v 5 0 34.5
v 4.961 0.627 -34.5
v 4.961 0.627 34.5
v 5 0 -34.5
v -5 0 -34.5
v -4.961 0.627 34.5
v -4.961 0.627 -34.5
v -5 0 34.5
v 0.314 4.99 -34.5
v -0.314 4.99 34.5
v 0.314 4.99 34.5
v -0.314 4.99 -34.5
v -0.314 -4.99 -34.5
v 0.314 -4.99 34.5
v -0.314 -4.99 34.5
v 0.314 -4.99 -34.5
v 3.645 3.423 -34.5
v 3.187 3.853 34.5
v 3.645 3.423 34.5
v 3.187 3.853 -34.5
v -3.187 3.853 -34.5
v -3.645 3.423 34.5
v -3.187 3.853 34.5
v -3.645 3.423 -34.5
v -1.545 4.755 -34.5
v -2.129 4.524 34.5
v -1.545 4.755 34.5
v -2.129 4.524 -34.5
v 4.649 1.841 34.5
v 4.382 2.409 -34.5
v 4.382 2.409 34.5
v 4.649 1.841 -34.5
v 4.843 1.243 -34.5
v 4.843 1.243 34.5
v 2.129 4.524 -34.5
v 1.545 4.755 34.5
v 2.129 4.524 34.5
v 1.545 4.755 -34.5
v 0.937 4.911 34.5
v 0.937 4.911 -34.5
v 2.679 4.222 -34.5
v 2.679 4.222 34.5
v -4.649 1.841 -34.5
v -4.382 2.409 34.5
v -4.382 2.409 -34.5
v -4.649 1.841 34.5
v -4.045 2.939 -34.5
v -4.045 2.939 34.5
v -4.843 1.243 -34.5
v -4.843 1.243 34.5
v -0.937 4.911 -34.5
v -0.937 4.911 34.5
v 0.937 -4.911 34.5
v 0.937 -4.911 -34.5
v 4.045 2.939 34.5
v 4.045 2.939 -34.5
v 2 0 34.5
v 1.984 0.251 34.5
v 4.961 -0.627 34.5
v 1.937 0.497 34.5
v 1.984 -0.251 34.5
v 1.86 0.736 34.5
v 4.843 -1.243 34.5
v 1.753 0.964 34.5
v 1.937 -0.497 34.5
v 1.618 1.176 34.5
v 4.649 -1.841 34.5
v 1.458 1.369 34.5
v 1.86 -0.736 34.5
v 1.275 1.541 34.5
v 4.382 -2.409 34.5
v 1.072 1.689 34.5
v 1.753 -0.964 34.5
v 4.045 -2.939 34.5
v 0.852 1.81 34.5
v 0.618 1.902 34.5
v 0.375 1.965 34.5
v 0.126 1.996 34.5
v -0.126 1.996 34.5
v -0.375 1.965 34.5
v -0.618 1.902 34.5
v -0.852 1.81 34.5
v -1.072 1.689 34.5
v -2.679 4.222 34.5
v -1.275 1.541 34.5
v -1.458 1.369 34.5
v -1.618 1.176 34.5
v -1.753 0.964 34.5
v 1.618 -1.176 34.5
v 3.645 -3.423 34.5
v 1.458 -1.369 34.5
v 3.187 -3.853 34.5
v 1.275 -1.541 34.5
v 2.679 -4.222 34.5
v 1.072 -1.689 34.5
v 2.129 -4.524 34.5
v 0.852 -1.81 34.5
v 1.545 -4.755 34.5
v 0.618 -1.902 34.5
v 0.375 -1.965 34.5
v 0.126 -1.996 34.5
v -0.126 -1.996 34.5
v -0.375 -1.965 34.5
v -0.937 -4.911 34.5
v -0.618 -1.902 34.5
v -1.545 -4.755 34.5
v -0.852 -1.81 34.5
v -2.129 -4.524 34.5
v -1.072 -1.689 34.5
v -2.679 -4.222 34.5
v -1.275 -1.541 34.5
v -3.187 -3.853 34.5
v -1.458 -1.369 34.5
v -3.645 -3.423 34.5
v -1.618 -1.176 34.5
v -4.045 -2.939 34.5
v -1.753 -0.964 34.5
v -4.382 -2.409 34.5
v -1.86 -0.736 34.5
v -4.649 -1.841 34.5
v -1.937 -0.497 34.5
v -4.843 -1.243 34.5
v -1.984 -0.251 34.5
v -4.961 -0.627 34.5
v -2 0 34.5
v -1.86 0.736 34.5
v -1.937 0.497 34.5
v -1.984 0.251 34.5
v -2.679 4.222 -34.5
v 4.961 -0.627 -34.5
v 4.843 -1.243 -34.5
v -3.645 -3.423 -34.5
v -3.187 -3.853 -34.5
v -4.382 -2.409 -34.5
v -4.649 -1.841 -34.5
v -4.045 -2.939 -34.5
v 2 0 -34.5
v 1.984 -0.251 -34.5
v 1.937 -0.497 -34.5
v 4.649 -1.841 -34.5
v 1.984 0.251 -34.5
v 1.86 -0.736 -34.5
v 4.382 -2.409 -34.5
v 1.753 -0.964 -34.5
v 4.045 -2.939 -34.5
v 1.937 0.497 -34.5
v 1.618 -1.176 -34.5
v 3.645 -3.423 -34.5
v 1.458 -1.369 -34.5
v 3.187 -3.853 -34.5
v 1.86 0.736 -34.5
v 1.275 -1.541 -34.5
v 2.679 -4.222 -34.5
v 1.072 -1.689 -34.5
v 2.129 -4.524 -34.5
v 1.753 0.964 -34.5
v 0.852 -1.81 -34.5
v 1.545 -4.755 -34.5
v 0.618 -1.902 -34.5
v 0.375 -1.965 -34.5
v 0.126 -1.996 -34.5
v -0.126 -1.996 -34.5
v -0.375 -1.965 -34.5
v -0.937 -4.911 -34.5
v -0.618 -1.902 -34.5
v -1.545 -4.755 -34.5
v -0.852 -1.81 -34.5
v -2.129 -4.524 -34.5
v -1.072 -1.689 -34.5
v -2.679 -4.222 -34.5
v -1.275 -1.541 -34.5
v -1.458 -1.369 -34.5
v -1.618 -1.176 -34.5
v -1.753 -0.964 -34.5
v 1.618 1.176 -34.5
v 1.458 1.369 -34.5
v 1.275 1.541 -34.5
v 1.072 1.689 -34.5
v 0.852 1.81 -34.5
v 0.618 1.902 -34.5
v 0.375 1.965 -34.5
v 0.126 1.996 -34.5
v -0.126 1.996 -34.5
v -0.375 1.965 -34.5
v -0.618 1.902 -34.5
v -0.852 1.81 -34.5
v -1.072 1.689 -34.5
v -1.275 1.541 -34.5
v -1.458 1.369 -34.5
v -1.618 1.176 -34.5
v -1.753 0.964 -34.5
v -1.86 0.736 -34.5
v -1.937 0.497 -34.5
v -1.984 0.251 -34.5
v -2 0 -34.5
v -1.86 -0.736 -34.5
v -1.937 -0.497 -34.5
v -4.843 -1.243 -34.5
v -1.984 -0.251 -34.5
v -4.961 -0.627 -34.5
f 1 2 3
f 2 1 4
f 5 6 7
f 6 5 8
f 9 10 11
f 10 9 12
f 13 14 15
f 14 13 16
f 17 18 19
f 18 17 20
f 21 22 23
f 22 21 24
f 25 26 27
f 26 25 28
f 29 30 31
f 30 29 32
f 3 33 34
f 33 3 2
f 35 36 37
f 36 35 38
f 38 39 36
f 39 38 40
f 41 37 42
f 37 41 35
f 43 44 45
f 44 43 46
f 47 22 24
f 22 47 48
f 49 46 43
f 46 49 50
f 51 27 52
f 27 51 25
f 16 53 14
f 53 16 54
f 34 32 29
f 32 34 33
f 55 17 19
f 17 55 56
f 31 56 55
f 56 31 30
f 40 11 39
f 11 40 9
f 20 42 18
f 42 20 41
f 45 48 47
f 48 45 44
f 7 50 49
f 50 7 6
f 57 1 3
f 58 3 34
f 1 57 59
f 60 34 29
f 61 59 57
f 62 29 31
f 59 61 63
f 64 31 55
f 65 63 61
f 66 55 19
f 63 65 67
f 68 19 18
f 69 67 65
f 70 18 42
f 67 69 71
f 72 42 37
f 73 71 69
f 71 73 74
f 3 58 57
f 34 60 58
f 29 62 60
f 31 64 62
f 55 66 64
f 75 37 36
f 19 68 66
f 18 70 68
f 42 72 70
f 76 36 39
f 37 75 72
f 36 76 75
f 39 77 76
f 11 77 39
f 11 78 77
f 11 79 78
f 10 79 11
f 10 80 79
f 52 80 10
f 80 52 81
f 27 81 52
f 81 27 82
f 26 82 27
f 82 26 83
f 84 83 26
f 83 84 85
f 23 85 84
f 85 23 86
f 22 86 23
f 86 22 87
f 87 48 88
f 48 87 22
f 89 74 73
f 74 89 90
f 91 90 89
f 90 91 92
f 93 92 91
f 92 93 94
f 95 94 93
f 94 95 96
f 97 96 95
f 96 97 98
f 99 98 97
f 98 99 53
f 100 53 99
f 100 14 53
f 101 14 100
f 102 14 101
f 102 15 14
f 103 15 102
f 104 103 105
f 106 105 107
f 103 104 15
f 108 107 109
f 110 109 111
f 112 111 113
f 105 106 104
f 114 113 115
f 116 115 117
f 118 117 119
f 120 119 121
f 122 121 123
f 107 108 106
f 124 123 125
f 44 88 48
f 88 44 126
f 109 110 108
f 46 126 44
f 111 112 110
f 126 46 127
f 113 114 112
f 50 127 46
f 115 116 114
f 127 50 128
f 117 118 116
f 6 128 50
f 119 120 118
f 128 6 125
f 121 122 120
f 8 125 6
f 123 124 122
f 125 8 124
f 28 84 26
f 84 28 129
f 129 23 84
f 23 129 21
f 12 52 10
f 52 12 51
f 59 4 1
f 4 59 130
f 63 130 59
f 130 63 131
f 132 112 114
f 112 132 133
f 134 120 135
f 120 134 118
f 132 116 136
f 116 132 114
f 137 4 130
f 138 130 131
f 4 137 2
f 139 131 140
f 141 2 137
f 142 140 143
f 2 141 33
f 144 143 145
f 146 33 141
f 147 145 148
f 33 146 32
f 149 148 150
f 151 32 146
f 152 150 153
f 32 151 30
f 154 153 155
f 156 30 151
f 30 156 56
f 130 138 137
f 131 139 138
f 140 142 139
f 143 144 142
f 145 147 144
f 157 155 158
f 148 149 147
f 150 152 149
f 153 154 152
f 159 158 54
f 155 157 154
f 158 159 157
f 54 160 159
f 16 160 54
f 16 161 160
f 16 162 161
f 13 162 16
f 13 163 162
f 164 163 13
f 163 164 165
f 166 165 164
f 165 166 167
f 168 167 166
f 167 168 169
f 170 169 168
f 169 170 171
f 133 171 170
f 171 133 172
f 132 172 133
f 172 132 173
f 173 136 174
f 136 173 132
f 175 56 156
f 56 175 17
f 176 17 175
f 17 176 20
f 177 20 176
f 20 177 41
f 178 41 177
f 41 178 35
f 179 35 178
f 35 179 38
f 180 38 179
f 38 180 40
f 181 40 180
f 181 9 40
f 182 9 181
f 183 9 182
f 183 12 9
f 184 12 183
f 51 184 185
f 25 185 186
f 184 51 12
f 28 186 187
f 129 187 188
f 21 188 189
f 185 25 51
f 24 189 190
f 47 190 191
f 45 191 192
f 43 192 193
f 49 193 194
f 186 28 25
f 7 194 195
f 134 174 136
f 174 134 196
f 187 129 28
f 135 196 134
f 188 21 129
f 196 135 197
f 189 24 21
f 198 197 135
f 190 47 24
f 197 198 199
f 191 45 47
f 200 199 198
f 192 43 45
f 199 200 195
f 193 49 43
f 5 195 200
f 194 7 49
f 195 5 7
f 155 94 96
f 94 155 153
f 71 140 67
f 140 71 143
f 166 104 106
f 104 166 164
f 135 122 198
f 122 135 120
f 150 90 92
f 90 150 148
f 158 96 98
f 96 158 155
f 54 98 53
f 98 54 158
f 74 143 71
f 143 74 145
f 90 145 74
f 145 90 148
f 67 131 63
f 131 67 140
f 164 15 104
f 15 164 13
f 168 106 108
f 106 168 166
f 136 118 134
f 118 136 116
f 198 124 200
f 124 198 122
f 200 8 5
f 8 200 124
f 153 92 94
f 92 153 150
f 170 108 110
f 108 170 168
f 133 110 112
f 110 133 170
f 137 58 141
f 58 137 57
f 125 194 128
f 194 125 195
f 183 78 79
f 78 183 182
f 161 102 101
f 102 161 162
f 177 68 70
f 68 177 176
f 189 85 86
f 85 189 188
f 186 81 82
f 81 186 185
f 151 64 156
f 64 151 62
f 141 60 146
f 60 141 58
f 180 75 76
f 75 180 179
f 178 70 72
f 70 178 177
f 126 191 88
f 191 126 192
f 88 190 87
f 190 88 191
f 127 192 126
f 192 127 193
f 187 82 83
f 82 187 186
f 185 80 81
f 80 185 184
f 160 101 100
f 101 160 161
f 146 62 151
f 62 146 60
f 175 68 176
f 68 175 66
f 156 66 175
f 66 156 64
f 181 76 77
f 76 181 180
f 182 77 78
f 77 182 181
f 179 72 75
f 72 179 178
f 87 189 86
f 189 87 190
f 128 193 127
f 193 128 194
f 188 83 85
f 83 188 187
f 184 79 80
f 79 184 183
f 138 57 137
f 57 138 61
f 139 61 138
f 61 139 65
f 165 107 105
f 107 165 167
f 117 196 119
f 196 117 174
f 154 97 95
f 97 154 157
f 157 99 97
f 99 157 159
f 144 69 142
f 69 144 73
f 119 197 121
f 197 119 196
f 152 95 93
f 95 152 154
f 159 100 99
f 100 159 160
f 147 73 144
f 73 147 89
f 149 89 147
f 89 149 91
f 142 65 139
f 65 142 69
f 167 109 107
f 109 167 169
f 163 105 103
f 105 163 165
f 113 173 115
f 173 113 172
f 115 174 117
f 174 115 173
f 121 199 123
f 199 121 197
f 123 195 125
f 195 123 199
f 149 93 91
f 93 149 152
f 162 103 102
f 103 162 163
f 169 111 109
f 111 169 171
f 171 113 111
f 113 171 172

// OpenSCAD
$fn = 50;


difference() {
	union() {
		translate(v = [0, 0, -34.5000000000]) {
			cylinder(h = 69, r = 5.0000000000);
		}
	}
	union() {
		translate(v = [0, 0, -100.0000000000]) {
			cylinder(h = 200, r = 2);
		}
	}
}
